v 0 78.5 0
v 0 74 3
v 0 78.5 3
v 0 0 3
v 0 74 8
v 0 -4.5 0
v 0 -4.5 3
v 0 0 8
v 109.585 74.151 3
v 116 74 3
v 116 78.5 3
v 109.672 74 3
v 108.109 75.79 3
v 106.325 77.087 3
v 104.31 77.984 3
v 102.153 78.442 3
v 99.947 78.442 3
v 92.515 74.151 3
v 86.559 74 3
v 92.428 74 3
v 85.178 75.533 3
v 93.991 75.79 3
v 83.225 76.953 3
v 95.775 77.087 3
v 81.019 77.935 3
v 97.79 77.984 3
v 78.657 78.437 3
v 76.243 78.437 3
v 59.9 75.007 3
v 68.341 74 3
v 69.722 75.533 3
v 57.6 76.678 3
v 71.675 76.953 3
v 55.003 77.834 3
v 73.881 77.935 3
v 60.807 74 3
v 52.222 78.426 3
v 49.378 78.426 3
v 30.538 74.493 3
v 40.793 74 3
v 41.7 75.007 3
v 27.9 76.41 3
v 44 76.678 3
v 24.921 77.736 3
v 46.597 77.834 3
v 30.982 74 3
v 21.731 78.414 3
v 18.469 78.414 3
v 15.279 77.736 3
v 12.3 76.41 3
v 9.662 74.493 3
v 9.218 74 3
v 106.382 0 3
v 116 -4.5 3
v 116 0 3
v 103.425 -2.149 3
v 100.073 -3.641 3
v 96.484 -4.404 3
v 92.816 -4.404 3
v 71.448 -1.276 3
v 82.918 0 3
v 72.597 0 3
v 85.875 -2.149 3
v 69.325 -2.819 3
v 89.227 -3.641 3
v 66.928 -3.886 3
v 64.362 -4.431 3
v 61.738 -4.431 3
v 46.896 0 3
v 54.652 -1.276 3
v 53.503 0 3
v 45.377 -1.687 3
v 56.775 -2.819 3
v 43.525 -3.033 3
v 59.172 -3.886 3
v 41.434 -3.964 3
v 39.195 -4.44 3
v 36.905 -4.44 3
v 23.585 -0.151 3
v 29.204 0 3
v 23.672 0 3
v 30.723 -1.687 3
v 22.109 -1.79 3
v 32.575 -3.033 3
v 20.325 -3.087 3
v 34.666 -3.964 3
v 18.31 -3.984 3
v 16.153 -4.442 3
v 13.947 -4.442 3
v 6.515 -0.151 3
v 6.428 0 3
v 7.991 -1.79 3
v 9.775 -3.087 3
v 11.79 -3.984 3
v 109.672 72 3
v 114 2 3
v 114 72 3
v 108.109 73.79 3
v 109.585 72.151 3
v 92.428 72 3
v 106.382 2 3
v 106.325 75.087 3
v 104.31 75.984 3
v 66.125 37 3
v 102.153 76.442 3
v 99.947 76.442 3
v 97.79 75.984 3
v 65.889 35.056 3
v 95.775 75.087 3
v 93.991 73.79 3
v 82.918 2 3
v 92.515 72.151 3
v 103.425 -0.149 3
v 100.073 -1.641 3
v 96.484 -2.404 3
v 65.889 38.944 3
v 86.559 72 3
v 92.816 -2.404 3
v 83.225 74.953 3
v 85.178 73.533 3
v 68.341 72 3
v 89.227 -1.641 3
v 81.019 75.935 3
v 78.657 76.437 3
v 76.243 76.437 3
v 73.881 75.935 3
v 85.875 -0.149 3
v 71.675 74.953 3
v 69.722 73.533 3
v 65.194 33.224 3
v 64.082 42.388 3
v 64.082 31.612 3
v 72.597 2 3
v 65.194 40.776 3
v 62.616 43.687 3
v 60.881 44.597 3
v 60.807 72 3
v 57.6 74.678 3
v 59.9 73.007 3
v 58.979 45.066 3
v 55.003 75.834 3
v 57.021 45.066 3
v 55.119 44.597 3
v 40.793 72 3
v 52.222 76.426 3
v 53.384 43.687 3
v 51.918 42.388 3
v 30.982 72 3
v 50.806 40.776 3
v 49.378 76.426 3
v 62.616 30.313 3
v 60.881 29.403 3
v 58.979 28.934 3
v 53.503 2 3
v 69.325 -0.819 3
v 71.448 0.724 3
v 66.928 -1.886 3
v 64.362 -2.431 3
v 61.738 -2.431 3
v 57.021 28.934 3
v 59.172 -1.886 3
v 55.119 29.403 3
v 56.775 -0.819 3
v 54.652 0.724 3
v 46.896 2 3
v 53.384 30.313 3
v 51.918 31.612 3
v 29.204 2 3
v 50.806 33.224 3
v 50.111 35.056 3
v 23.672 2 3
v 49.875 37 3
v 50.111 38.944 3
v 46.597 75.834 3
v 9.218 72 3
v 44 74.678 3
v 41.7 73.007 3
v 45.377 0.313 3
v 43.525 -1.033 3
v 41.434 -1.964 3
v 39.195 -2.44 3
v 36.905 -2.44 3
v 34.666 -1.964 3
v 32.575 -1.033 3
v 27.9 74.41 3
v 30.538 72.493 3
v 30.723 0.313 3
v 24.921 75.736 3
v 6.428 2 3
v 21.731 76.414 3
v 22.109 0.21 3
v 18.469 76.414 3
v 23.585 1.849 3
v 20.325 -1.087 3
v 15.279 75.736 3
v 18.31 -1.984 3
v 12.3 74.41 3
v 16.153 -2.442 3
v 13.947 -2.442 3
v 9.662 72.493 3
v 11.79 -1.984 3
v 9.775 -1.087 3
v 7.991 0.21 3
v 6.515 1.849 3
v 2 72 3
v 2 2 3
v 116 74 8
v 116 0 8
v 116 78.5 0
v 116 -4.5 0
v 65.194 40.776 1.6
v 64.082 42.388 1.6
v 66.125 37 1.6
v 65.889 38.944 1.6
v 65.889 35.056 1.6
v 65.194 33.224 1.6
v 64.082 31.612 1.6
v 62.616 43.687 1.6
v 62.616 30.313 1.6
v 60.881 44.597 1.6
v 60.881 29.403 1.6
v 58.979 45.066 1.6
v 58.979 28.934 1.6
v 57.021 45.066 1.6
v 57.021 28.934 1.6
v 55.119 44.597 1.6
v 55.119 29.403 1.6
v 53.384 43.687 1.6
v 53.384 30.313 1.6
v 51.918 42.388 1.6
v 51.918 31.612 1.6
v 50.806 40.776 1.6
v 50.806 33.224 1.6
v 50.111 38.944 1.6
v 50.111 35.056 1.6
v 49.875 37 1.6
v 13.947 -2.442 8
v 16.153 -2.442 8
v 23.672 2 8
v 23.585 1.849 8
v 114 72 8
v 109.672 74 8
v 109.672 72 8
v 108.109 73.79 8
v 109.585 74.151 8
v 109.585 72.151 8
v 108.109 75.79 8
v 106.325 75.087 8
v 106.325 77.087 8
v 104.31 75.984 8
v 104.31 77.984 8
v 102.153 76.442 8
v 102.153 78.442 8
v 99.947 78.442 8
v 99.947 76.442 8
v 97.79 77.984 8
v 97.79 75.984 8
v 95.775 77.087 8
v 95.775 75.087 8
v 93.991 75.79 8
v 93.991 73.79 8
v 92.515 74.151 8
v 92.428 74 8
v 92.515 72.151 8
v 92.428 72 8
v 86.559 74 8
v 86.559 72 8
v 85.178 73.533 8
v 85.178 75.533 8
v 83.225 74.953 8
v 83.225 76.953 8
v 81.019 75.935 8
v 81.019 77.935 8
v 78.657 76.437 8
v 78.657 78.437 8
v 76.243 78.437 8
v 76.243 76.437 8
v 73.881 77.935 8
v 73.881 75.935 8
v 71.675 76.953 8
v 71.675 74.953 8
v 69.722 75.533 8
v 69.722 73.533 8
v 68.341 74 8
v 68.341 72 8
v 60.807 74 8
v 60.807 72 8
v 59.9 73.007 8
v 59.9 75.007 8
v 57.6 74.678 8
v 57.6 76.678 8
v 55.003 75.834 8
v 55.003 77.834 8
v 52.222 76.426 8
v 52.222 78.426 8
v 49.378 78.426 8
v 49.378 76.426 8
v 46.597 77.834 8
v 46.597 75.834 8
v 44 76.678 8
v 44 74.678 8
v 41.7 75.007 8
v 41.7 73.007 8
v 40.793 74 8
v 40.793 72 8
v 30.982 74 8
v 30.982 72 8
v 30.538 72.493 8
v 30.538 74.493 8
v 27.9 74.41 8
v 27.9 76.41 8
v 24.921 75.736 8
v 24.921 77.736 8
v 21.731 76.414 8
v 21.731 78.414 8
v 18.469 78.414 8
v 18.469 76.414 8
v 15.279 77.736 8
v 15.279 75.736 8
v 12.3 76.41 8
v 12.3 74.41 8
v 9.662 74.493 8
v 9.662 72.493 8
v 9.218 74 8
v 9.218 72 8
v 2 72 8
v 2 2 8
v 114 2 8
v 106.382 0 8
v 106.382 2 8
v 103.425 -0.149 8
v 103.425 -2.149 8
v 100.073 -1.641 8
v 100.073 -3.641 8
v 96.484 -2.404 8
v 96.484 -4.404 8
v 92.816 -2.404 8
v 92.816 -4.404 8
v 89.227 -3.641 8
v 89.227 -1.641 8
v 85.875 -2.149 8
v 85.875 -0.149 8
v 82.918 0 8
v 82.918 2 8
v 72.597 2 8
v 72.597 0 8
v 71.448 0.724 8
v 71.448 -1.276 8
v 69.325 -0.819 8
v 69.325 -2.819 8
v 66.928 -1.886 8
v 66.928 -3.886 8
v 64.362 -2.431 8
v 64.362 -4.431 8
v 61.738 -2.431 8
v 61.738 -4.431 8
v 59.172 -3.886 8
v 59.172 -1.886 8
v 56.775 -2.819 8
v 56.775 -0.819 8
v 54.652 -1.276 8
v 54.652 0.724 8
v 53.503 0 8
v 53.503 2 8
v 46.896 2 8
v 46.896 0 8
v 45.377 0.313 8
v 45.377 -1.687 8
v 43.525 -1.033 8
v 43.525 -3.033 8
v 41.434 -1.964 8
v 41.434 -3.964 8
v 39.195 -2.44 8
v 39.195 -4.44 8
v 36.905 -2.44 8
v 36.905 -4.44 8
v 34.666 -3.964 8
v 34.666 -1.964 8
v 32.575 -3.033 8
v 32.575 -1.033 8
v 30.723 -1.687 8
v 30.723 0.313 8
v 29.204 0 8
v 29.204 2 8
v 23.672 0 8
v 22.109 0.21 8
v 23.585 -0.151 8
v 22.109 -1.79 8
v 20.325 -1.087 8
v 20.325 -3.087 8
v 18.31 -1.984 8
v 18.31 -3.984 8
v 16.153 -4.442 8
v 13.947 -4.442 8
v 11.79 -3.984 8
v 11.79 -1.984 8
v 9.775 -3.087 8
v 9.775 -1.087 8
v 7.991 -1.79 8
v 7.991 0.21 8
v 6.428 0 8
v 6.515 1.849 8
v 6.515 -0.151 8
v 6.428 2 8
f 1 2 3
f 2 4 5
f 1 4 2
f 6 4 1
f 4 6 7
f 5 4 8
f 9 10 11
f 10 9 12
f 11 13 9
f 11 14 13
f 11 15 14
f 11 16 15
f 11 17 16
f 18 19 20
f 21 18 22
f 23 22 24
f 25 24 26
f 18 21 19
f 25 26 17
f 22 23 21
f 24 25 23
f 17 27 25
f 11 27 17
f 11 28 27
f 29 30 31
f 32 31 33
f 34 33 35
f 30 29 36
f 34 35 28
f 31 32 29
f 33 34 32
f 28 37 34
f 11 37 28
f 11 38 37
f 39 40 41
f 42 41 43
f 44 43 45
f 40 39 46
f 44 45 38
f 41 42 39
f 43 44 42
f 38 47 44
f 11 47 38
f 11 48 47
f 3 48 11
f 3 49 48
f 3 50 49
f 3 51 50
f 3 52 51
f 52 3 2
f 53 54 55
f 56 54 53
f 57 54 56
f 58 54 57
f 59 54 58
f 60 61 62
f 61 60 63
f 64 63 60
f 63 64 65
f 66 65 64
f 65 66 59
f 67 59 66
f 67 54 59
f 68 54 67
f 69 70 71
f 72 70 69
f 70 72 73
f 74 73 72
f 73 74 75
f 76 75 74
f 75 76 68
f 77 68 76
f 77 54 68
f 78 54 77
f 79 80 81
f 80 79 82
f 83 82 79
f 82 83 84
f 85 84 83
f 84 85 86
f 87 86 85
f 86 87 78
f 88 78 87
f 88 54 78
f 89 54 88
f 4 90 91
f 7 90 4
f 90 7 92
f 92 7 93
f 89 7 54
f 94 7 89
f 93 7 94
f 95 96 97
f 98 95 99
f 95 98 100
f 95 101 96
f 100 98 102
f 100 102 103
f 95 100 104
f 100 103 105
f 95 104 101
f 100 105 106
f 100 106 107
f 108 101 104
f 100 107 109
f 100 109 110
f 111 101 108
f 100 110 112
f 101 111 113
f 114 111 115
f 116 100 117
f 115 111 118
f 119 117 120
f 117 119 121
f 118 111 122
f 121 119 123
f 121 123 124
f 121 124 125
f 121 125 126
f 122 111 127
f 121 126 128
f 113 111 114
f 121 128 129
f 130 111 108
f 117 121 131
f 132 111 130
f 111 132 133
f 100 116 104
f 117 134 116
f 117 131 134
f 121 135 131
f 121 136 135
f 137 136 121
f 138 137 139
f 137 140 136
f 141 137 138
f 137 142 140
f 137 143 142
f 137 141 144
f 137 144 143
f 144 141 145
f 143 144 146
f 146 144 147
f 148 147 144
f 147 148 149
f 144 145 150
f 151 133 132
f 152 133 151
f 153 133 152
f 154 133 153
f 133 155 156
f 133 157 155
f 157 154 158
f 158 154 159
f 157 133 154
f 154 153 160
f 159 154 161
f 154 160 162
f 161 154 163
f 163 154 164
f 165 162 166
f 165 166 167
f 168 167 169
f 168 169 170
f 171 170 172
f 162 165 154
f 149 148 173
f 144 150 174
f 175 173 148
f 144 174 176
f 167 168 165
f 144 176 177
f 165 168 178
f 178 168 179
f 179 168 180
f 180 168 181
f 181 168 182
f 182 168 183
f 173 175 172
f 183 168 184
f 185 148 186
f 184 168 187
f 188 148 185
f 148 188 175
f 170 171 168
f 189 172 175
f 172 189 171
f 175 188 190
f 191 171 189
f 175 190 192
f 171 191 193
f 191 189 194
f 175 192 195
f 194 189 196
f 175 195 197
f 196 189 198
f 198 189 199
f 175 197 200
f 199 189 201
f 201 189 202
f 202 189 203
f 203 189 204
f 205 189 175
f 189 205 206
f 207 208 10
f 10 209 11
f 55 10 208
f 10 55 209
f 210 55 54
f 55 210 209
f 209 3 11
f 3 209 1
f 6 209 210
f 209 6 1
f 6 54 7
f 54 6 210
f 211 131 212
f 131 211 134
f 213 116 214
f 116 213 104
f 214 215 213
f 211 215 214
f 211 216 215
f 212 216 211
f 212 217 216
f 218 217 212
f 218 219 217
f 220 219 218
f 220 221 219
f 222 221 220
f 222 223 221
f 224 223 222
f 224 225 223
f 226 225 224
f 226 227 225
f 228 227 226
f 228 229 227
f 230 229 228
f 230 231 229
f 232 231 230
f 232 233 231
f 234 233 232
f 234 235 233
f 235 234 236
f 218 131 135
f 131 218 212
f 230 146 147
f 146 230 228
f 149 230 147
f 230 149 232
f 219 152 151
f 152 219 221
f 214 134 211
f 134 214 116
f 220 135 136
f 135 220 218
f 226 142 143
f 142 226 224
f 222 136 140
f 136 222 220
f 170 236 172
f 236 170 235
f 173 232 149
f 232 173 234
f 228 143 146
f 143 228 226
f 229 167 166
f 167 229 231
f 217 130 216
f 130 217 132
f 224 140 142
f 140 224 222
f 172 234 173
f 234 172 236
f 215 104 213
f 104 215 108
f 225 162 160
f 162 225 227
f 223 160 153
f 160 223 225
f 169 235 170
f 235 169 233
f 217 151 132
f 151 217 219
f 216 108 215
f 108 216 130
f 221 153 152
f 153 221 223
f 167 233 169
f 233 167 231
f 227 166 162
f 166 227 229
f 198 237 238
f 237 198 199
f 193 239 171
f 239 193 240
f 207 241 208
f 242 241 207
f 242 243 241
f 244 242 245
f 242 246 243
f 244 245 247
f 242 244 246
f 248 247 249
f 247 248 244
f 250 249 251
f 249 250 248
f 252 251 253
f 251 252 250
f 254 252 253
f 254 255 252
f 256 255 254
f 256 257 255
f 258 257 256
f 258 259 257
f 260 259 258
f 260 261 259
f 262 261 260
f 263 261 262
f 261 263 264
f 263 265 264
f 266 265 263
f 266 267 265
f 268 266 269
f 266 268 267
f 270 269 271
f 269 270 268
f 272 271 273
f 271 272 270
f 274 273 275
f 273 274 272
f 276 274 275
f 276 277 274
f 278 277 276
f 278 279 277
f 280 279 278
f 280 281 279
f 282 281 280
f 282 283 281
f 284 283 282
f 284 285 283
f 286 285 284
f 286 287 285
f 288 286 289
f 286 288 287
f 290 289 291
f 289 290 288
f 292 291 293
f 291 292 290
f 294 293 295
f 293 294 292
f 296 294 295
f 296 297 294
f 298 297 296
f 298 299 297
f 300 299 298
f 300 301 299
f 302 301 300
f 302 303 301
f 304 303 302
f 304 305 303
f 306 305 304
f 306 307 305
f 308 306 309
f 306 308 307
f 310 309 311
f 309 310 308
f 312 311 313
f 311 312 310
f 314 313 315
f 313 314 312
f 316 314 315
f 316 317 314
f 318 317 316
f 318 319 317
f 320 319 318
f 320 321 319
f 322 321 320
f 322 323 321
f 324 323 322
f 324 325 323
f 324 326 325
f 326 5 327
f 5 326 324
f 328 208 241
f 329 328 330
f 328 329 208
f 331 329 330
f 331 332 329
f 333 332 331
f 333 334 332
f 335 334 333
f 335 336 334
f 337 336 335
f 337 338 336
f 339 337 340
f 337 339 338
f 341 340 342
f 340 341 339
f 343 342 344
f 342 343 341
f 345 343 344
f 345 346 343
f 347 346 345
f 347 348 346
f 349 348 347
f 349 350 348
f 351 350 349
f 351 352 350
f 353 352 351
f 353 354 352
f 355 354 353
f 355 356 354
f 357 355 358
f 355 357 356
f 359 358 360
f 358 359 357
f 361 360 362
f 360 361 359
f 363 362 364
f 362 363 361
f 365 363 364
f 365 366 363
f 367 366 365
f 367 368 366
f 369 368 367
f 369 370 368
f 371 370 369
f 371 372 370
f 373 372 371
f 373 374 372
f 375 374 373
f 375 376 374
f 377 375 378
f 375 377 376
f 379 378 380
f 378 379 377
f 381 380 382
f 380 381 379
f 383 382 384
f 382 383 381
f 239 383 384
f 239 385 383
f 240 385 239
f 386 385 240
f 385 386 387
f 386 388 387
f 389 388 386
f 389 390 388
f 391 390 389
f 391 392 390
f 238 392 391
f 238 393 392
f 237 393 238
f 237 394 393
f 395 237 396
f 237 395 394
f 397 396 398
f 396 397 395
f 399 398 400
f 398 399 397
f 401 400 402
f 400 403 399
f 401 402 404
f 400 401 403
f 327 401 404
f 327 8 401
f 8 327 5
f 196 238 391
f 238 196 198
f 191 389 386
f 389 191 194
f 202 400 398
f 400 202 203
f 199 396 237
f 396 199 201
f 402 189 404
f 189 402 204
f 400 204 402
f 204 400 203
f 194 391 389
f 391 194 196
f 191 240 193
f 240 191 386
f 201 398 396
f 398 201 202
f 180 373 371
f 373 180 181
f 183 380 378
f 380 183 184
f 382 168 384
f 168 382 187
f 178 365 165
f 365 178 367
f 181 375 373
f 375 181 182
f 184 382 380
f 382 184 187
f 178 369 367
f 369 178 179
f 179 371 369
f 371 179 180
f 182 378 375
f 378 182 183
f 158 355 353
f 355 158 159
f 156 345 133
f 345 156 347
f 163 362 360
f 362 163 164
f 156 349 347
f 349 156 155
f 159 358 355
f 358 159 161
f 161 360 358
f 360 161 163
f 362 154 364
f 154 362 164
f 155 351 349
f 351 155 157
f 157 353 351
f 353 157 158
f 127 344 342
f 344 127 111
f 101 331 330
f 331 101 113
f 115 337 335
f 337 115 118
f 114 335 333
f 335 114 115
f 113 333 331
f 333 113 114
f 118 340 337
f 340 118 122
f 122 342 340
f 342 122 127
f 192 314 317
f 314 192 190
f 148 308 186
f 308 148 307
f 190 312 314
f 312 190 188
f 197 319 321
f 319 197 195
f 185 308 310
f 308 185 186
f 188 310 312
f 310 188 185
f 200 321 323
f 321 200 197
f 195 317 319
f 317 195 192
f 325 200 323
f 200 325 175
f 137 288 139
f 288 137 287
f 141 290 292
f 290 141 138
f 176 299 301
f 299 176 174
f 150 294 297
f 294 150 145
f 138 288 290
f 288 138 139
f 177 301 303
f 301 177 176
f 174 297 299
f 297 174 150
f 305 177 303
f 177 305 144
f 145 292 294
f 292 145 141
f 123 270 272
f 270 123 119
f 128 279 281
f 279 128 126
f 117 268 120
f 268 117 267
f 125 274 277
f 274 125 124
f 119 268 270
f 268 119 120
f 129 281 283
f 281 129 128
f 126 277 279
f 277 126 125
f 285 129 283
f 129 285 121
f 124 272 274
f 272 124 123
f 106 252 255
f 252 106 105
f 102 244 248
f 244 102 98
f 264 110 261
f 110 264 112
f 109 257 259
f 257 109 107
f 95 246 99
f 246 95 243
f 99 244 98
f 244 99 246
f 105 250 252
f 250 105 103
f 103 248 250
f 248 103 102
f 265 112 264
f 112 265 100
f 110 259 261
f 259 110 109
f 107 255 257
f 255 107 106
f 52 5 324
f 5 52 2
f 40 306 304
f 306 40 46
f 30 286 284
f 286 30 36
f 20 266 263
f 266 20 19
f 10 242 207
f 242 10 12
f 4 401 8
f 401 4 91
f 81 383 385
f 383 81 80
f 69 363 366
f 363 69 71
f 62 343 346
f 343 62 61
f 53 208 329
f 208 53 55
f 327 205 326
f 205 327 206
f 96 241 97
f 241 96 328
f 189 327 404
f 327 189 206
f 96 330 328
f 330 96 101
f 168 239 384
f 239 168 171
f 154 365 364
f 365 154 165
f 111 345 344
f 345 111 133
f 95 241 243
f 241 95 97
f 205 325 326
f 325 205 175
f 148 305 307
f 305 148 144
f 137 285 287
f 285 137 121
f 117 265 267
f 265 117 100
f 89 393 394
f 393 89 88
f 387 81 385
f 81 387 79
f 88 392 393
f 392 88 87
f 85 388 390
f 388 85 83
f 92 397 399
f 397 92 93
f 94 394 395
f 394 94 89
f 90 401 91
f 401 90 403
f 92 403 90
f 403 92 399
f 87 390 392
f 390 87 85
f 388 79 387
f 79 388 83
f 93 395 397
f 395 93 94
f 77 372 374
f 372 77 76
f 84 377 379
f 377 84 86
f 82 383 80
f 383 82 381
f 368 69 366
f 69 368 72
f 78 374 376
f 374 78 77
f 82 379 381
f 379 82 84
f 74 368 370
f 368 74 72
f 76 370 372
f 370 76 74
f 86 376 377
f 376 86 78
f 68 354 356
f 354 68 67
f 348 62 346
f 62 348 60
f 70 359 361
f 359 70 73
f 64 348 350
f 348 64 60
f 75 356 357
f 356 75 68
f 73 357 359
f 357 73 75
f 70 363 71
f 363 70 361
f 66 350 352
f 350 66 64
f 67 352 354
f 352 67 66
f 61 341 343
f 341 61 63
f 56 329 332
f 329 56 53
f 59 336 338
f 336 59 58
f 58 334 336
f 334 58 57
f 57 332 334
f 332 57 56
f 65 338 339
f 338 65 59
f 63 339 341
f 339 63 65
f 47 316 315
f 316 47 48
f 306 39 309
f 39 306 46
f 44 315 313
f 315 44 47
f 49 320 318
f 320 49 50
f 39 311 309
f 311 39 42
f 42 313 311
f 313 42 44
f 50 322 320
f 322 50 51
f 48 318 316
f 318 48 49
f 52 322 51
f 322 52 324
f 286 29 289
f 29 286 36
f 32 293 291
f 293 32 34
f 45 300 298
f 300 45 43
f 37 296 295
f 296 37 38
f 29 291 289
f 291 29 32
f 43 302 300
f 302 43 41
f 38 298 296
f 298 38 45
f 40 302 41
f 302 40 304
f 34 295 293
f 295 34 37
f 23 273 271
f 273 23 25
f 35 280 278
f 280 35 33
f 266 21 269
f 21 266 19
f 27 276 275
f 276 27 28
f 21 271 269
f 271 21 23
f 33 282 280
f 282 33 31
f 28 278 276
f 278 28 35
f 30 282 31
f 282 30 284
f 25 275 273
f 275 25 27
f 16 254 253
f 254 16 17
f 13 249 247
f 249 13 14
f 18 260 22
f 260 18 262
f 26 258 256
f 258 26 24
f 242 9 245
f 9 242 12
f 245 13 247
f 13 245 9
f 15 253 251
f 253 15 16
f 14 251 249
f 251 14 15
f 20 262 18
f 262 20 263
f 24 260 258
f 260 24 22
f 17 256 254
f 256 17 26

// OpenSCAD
length = 111;
width = 69;
height = 3;
rimHeight = 5;
rimThickness = 2;
notchLength = 25;
//Based on washer size:
washerDiameter = 16.25;
washerHeight = 1.4;
rimPadding = 1;
totalHeight = height + rimHeight;

totalLength = length + rimThickness * 2 + rimPadding;
totalWidth = width + rimThickness * 2 + rimPadding;
extraLidForCircles = 4.5;
union()
{
    difference() {
        translate([0, -extraLidForCircles, 0])
            cube([totalLength, totalWidth + 2 * extraLidForCircles, height]);
        translate([totalLength/2, totalWidth/2, height - washerHeight])
            cylinder(washerHeight, d=washerDiameter);
    }
    
    difference() {
        translate([0, 0, height])
            cube([totalLength, totalWidth, rimHeight]);
        translate([rimThickness, rimThickness, height])
            cube([length + rimPadding, width + rimPadding, rimHeight]);
        LeftCircles();
        RightCircles();
    }
    
    difference(){
        union()
        {
            translate([0, -rimThickness, 0])
                LeftCircles();
            translate([0, rimThickness, 0])
                RightCircles();
        }
        translate([0, 0, height])
            cube([totalLength, totalWidth, rimHeight]);
        LeftCircles();
        RightCircles();
    }
}

module LeftCircles()
{
fiftyCoinHeight = 16.7 + .5;
twentyCoinHeight = 19.2 + .5;
tenCoinHeight = 28.2 + .5;
fiveCoinHeight = 29.1 + .5;
threeCoinHeight = 29.2 + .5;
twoCoinHeight = 28.8 + .5;
oneCoinFirstHeight = 23.3 + .5;
oneCoinSecondHeight = 25.2 + .5;


coinOffset = 2.5;
fiftyCoinDiameter = 34.1 + 1;
twentyCoinDiameter = 30.2 + 1;
tenCoinDiameter = 26.2 + 1;
fiveCoinDiameter = 24.1 + 1;
threeCoinDiameter = 22.1 + 1;
twoCoinDiameter = 20.9 + 1;
oneCoinDiameter = 20.1 + 1;

spaceBetweenCircles = 1.5;
    translate([oneCoinDiameter/2 + spaceBetweenCircles + rimThickness + rimPadding, oneCoinDiameter/2 - coinOffset, height])
            cylinder(rimHeight, d=oneCoinDiameter);

    translate([oneCoinDiameter + twoCoinDiameter/2 + rimThickness + rimPadding + spaceBetweenCircles * 2, twoCoinDiameter/2 - coinOffset, height])
        cylinder(rimHeight, d=twoCoinDiameter);
    
    translate([oneCoinDiameter + twoCoinDiameter + fiveCoinDiameter/2 + rimThickness + rimPadding + spaceBetweenCircles * 3, fiveCoinDiameter/2 - coinOffset, height])
        cylinder(rimHeight, d=fiveCoinDiameter);
    
    translate([oneCoinDiameter + fiveCoinDiameter + twoCoinDiameter + fiftyCoinDiameter/2  + rimThickness + rimPadding + spaceBetweenCircles * 4, fiftyCoinDiameter/2 - coinOffset, height])
        cylinder(rimHeight, d=fiftyCoinDiameter);
}

module RightCircles()
{
fiftyCoinHeight = 16.7 + .5;
twentyCoinHeight = 19.2 + .5;
tenCoinHeight = 28.2 + .5;
fiveCoinHeight = 29.1 + .5;
threeCoinHeight = 29.2 + .5;
twoCoinHeight = 28.8 + .5;
oneCoinFirstHeight = 23.3 + .5;
oneCoinSecondHeight = 25.2 + .5;


coinOffset = 2.5;
fiftyCoinDiameter = 34.1 + 1;
twentyCoinDiameter = 30.2 + 1;
tenCoinDiameter = 26.2 + 1;
fiveCoinDiameter = 24.1 + 1;
threeCoinDiameter = 22.1 + 1;
twoCoinDiameter = 20.9 + 1;
oneCoinDiameter = 20.1 + 1;

spaceBetweenCircles = 1.5;
    
    translate([twentyCoinDiameter/2  + rimThickness + rimPadding + spaceBetweenCircles, totalWidth - (twentyCoinDiameter/2 - coinOffset), height])
        cylinder(rimHeight, d=twentyCoinDiameter);
    
    translate([twentyCoinDiameter  + rimThickness + rimPadding + tenCoinDiameter/2 + spaceBetweenCircles * 2, totalWidth - (tenCoinDiameter/2 - coinOffset), height])
        cylinder(rimHeight, d=tenCoinDiameter);
    
    translate([twentyCoinDiameter  + rimThickness + rimPadding + tenCoinDiameter + threeCoinDiameter/2 + spaceBetweenCircles * 3, totalWidth - (threeCoinDiameter/2 - coinOffset), height])
        cylinder(rimHeight, d=threeCoinDiameter);
        
        translate([twentyCoinDiameter  + rimThickness + rimPadding + threeCoinDiameter + tenCoinDiameter + oneCoinDiameter/2 + spaceBetweenCircles * 4, totalWidth - (oneCoinDiameter/2 - coinOffset), height])
        cylinder(rimHeight, d=oneCoinDiameter);
}
